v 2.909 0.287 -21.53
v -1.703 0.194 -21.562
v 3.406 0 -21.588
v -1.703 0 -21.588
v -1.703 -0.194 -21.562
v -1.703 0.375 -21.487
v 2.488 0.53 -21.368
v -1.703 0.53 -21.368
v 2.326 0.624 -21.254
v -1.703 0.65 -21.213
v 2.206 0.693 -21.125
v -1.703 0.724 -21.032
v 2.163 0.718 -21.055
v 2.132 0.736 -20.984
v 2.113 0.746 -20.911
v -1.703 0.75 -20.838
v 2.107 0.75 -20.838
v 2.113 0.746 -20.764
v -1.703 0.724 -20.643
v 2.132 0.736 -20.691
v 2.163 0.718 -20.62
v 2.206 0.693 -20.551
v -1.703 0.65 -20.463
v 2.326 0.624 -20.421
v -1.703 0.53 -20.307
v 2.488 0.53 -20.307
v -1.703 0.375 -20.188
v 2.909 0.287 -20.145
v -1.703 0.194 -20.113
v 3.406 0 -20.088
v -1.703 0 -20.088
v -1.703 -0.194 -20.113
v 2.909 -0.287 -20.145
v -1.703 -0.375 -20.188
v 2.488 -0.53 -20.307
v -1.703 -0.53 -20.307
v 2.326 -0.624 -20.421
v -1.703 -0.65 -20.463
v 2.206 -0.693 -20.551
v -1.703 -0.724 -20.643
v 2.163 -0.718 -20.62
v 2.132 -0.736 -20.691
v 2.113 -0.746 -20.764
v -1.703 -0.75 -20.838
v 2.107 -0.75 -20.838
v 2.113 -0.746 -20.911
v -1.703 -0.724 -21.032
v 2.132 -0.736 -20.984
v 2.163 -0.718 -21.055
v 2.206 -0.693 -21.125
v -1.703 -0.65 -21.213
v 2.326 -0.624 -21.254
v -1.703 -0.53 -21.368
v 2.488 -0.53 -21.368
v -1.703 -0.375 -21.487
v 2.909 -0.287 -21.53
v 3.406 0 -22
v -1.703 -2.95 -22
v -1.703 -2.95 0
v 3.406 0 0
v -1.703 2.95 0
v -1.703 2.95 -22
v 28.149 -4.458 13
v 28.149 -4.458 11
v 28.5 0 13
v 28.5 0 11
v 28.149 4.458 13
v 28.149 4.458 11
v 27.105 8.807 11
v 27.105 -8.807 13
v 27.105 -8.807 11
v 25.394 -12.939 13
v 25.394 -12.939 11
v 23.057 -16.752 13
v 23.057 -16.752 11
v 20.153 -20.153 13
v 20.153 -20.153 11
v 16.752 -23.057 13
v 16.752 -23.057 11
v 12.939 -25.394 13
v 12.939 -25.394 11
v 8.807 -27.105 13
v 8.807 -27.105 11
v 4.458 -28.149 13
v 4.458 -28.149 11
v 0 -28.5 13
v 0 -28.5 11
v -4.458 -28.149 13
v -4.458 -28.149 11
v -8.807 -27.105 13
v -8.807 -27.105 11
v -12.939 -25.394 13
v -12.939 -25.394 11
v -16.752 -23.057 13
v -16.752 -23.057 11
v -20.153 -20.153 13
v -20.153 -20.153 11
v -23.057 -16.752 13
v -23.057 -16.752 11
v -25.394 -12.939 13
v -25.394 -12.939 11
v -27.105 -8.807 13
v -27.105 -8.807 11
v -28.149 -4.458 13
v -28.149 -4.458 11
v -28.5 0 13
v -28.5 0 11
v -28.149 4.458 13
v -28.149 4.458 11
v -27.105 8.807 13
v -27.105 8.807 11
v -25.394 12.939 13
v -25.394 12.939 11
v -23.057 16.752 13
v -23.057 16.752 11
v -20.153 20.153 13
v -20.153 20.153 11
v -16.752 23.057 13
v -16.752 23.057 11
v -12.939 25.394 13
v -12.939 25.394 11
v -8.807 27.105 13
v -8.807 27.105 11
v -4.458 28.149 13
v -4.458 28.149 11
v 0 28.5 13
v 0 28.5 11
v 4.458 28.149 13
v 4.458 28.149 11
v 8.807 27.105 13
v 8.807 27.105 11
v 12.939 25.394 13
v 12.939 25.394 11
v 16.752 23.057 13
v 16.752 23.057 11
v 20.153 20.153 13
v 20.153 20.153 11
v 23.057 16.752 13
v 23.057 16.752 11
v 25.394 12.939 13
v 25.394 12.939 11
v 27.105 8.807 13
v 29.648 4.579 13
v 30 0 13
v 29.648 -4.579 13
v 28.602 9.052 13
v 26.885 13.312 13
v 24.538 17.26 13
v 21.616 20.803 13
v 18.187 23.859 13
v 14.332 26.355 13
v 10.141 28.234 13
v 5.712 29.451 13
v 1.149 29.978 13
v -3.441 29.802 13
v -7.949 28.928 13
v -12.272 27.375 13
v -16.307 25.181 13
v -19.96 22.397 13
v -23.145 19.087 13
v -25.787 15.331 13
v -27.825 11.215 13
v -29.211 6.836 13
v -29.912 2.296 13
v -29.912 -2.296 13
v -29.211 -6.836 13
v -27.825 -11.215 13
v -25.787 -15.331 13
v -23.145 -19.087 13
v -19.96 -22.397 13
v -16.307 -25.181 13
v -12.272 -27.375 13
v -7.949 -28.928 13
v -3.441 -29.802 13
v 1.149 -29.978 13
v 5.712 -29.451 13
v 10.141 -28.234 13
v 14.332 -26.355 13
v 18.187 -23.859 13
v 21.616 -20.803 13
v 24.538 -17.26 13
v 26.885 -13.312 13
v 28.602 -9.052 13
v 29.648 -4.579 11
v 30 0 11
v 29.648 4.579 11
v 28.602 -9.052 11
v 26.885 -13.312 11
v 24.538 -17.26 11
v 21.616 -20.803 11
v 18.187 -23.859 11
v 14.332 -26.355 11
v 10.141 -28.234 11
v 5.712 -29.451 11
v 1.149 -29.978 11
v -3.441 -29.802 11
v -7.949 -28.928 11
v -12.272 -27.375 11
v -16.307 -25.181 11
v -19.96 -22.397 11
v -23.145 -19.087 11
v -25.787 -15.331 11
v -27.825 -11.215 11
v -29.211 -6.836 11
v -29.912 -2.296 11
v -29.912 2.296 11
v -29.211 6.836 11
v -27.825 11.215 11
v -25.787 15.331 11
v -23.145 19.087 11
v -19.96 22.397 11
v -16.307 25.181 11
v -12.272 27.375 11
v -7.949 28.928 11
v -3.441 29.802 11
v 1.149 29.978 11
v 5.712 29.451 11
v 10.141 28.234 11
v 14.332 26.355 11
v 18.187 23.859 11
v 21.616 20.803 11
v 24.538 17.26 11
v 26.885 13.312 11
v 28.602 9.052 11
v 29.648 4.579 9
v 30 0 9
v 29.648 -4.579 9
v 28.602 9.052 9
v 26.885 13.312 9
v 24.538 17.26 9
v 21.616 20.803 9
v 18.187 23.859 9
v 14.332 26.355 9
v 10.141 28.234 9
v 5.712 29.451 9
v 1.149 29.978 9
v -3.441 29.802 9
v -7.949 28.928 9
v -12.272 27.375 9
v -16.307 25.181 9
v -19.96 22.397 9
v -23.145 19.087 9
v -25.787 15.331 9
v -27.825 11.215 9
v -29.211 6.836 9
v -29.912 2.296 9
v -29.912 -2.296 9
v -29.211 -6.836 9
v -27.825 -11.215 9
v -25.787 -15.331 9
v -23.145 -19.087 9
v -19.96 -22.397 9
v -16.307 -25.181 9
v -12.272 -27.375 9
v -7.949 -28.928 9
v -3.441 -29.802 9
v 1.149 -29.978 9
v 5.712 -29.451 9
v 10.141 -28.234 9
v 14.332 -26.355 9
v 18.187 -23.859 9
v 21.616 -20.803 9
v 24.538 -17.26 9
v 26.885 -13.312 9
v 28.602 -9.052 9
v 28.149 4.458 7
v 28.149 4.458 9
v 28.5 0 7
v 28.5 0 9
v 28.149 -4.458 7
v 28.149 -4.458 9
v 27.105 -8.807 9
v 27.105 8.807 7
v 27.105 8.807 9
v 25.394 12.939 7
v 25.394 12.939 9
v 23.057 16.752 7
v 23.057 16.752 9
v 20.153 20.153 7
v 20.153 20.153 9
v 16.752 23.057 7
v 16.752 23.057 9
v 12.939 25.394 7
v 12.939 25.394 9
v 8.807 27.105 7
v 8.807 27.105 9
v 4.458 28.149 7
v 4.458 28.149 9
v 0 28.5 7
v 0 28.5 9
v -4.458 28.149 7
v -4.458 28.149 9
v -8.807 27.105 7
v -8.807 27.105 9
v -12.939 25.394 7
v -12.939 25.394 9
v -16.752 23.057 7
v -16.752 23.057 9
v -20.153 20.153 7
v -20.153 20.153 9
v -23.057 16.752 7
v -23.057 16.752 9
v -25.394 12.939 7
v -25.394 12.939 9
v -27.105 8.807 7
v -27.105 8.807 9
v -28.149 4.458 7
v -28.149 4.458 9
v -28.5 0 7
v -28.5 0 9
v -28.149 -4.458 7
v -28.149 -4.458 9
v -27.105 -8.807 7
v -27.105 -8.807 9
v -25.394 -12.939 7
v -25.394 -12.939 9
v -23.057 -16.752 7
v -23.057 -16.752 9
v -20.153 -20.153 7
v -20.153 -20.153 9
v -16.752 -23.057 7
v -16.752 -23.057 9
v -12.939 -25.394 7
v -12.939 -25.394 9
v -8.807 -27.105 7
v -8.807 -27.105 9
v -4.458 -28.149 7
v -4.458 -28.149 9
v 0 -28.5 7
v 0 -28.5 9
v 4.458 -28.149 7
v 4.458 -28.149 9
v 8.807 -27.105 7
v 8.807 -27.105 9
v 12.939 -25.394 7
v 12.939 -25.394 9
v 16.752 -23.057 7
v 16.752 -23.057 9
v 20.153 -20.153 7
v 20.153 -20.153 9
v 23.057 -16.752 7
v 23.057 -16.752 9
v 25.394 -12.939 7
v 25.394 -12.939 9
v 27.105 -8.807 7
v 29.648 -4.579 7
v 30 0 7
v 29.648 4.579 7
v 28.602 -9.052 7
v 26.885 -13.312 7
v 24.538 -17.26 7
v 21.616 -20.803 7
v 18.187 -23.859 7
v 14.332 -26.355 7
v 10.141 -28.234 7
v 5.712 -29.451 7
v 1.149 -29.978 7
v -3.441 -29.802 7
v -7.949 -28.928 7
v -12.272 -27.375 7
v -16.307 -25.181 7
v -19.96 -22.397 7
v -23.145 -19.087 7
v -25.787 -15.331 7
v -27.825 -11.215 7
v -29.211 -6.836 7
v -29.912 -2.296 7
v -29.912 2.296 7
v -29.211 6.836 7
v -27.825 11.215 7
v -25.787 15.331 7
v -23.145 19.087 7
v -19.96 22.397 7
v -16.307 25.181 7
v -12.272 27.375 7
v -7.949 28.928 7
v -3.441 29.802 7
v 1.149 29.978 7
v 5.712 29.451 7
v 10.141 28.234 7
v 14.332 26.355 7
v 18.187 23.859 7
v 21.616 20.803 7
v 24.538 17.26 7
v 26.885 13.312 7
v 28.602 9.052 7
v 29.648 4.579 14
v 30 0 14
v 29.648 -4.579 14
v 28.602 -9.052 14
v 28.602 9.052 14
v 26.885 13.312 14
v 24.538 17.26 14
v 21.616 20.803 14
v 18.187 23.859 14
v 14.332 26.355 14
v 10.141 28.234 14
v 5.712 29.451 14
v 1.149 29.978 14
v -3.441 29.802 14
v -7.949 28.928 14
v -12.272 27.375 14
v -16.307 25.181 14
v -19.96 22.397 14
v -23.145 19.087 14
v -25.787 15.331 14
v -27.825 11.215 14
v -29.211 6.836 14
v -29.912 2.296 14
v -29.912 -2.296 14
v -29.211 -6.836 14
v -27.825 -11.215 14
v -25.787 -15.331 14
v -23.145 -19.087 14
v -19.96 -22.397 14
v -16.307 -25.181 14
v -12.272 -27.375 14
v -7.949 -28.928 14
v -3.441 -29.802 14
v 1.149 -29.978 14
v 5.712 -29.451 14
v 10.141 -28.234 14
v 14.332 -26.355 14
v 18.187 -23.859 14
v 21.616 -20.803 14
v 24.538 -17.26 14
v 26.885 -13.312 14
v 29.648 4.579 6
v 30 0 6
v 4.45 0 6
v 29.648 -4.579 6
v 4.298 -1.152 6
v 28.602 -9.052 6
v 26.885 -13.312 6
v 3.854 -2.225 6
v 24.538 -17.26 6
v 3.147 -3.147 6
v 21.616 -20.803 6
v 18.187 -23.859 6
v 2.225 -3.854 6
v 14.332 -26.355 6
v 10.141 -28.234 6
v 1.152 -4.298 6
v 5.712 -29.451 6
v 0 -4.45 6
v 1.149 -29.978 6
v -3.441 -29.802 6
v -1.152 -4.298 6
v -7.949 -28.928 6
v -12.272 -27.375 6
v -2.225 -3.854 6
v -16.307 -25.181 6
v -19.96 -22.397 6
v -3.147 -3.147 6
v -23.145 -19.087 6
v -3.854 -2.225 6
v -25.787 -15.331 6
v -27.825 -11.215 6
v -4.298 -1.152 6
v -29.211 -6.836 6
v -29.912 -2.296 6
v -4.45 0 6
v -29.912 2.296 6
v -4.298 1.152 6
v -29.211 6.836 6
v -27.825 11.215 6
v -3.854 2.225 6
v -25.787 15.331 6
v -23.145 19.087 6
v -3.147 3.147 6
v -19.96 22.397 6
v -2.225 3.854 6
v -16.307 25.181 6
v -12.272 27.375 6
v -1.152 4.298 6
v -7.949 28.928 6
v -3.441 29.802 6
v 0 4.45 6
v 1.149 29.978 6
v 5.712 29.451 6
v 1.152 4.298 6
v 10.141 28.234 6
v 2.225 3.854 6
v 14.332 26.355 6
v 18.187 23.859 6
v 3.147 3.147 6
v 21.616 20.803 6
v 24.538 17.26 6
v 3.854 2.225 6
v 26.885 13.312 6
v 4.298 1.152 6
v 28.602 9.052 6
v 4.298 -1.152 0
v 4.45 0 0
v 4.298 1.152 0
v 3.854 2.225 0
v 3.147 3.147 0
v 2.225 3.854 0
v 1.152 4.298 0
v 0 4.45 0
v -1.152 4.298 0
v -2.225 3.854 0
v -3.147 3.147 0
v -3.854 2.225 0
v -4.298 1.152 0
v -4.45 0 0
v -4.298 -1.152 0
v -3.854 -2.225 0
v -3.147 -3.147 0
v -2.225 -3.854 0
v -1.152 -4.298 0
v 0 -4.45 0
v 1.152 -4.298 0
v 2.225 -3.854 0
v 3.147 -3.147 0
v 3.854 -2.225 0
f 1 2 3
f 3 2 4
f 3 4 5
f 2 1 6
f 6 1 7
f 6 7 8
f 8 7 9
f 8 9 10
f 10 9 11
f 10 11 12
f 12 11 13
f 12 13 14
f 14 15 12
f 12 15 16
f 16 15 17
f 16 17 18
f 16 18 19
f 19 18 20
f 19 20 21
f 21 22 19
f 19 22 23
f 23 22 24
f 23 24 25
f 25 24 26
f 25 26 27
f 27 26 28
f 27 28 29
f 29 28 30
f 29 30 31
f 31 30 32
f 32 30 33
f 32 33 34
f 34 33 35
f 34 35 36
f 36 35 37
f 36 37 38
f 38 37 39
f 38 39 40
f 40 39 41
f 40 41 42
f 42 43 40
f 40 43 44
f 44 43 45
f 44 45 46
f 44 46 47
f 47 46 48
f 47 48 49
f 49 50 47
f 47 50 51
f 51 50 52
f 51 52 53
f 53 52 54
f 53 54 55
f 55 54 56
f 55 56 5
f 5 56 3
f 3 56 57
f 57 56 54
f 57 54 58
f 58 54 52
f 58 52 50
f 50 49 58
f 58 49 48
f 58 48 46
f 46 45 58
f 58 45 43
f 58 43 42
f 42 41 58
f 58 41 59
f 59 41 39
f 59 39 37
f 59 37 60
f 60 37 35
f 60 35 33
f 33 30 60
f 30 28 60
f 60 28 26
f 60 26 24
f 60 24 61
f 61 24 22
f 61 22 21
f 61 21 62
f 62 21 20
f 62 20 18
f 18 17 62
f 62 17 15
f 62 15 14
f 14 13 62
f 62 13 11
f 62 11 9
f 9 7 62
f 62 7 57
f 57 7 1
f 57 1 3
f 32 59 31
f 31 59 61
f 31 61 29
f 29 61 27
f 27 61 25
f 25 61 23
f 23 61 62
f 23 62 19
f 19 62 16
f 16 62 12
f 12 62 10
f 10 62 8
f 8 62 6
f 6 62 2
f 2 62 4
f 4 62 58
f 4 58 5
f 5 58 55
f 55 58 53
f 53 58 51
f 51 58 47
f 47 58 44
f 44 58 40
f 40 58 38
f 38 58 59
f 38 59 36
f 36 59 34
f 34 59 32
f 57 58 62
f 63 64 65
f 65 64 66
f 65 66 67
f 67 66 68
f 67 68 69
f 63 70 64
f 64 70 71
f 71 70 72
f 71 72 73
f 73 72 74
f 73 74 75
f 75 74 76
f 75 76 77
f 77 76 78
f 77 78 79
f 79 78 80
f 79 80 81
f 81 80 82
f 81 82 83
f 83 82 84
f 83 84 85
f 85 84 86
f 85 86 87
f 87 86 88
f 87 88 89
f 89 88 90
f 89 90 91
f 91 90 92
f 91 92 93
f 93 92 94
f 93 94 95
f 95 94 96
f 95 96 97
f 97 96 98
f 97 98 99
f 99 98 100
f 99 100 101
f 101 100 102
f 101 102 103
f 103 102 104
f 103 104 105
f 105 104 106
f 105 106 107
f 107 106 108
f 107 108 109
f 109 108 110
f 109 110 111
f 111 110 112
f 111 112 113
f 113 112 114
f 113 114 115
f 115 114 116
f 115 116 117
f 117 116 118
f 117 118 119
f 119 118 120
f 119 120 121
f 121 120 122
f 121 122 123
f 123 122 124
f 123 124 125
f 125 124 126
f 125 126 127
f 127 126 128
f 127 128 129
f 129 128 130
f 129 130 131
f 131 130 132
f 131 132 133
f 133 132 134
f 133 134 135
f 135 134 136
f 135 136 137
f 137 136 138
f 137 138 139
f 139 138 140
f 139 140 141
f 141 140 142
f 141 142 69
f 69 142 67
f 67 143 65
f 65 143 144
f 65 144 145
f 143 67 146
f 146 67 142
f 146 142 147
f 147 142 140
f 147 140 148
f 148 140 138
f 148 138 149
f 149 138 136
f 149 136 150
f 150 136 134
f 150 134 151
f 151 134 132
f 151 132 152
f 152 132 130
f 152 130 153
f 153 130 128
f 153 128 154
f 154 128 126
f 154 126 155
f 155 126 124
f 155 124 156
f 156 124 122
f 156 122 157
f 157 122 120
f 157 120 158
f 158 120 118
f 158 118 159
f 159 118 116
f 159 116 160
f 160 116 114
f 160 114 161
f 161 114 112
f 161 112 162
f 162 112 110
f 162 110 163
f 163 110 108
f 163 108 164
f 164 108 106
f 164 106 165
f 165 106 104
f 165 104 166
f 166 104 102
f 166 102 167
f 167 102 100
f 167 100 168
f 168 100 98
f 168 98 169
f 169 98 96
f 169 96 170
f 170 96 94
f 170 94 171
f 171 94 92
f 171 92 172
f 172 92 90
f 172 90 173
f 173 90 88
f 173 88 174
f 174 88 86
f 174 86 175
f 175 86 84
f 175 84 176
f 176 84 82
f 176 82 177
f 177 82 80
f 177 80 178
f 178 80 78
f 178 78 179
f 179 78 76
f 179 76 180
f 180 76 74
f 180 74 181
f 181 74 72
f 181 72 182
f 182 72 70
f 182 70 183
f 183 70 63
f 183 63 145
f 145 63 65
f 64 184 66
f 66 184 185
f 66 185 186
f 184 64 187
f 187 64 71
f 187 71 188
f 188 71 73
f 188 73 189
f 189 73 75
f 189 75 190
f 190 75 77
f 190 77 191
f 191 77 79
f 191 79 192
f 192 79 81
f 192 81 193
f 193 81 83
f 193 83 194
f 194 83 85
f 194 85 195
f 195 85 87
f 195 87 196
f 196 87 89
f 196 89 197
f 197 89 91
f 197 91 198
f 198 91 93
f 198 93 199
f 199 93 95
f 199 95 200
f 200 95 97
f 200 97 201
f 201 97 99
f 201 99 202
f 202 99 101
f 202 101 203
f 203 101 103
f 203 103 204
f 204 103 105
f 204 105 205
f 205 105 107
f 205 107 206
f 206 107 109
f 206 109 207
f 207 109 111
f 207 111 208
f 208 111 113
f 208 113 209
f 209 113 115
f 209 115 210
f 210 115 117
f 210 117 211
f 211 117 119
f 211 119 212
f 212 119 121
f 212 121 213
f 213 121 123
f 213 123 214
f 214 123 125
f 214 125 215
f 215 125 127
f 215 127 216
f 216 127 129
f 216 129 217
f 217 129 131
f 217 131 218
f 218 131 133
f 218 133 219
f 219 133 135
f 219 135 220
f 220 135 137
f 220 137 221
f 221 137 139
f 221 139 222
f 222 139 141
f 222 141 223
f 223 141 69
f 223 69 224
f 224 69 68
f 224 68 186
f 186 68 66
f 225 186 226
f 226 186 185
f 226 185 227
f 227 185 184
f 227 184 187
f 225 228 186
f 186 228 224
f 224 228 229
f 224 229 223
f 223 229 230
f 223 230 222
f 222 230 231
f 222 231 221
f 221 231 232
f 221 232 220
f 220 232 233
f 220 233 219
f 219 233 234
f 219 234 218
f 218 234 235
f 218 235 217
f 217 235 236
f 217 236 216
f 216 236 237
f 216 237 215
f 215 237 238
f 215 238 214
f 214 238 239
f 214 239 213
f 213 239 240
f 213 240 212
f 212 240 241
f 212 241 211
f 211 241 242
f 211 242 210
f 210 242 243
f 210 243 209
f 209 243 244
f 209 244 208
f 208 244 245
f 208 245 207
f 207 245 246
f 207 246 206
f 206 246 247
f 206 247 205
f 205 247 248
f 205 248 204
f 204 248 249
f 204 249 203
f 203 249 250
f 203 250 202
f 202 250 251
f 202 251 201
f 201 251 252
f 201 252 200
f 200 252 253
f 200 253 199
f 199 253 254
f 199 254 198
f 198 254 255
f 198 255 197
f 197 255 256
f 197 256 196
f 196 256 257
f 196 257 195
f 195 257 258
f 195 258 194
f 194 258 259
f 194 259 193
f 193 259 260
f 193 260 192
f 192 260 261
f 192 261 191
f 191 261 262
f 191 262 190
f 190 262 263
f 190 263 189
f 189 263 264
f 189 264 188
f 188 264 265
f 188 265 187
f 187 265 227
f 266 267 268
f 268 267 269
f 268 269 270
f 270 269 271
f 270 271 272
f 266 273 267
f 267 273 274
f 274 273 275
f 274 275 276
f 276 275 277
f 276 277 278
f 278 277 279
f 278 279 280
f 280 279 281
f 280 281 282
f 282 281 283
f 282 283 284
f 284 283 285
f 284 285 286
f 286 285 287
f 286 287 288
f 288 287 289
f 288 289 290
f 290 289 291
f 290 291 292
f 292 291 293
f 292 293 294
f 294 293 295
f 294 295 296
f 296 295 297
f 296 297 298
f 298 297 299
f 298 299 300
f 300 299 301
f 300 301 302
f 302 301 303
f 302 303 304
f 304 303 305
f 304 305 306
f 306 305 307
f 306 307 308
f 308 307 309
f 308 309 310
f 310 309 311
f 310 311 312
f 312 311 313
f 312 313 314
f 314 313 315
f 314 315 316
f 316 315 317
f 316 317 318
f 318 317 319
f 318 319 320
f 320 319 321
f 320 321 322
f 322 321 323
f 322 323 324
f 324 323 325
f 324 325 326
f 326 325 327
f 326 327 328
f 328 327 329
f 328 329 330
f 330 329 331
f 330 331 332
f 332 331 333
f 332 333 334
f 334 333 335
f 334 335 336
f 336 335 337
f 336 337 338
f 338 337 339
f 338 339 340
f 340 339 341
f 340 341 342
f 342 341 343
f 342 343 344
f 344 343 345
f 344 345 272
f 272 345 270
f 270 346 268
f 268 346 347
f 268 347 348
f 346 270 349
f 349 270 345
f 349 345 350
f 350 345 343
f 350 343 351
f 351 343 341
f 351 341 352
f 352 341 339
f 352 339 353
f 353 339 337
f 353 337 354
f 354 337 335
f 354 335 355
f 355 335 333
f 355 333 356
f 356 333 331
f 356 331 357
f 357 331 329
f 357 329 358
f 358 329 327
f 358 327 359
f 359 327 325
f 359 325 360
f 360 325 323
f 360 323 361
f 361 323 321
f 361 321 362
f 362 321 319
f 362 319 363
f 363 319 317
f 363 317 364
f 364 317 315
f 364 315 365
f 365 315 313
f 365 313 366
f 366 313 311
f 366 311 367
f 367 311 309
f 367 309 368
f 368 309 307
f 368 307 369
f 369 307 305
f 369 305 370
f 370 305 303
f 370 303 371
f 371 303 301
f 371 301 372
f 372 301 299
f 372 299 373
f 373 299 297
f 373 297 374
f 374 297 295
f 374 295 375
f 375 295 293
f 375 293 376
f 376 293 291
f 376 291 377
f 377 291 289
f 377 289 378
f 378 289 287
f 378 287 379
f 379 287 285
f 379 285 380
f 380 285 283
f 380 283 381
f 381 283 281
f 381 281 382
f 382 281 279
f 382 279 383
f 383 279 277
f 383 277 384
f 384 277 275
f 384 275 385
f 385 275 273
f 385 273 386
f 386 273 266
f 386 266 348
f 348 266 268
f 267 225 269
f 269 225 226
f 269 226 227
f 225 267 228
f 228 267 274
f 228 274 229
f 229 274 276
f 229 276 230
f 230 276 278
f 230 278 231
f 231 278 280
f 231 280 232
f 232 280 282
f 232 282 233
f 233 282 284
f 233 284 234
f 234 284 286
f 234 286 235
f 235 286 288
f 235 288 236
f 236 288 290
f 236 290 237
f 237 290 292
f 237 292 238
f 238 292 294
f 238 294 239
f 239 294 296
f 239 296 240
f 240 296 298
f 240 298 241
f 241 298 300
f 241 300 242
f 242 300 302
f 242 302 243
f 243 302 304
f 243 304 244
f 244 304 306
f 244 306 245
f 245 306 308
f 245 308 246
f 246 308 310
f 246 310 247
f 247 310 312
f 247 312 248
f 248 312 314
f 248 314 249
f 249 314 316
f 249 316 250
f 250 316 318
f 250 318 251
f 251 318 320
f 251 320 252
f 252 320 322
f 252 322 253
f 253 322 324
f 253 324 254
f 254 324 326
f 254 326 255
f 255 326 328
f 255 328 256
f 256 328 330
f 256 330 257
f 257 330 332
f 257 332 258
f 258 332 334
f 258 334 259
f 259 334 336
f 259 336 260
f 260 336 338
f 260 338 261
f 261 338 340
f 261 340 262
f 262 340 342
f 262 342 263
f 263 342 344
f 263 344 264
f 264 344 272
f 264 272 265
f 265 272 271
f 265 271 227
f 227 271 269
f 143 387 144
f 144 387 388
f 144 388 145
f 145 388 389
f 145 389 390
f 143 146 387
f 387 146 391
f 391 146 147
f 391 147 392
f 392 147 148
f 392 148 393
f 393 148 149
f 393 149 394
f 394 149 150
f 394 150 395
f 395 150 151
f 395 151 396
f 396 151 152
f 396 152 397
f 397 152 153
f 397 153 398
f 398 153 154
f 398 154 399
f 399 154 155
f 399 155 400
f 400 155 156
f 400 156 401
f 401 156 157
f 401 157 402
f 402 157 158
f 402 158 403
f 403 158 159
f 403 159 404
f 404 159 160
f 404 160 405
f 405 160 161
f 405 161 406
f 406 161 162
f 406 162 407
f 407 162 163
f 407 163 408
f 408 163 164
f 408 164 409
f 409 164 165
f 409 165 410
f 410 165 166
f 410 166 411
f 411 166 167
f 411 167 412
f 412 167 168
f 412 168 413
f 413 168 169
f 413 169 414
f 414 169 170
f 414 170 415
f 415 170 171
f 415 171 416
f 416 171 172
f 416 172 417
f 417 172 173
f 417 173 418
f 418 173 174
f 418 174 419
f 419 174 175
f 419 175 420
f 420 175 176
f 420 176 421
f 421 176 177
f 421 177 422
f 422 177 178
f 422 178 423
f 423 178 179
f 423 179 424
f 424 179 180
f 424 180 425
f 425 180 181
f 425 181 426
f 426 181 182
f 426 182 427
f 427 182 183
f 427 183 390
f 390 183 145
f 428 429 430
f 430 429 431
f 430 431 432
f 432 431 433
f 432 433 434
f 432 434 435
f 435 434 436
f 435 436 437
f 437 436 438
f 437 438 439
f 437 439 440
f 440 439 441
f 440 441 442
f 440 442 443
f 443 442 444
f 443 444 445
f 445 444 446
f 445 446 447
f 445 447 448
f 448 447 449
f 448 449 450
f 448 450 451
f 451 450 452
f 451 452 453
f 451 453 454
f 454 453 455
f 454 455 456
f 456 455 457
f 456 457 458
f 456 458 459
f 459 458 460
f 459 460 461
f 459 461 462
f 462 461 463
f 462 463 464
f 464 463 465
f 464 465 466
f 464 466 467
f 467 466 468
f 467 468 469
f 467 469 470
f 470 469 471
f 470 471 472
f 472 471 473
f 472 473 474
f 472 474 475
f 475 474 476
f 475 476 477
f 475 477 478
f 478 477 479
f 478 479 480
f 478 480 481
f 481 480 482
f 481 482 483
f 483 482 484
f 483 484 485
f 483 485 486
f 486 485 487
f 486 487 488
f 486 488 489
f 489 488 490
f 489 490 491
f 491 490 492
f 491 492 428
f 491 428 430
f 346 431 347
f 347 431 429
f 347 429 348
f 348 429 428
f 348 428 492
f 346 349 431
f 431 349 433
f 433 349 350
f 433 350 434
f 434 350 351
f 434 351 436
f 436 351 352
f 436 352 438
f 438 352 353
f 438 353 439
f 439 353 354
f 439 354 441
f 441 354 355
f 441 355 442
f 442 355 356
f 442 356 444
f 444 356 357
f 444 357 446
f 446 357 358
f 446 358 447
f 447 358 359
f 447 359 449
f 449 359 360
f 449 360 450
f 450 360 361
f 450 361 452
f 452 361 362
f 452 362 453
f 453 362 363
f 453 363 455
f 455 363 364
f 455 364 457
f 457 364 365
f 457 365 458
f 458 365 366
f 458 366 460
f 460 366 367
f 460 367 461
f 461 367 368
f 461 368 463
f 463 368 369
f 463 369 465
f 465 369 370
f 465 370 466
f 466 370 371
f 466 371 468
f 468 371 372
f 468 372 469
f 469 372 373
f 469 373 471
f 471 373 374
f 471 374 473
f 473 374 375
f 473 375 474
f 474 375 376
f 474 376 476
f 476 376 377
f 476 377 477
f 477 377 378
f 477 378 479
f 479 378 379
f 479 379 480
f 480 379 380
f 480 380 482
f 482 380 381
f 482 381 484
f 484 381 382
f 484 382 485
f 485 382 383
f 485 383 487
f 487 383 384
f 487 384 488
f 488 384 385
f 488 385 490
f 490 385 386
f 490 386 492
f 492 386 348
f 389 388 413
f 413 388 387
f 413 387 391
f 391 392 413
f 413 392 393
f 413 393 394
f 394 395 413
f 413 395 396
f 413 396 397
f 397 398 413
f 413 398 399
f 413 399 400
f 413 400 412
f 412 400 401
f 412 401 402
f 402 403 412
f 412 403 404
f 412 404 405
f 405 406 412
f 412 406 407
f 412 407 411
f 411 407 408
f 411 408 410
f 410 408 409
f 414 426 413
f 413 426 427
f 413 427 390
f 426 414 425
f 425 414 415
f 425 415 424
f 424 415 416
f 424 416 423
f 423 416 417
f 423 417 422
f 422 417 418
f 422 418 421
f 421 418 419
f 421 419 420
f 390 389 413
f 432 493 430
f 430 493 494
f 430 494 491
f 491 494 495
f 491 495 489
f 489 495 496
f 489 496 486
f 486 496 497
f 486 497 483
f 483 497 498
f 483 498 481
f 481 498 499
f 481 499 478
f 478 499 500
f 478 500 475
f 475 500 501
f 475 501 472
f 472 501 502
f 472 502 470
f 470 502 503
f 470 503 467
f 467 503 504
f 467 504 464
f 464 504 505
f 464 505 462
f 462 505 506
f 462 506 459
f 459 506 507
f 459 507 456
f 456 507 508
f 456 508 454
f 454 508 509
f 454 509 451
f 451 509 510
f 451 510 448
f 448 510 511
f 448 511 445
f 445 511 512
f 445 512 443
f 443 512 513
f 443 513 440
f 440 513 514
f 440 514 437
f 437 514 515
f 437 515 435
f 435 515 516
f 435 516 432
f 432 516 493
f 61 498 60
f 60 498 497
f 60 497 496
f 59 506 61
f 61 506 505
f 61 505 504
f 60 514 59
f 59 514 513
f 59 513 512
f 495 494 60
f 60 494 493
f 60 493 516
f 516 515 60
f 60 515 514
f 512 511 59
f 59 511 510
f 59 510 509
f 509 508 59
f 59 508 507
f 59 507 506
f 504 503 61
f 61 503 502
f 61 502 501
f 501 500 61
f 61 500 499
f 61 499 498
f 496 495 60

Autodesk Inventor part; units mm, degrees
ref_plane "YZ Plane" through (0, 0, 0) normal (1, 0, 0) x (0, 1, 0)
ref_plane "XZ Plane" through (0, 0, 0) normal (0, 1, 0) x (-1, 0, 0)
ref_plane "XY Plane" through (0, 0, 0) normal (0, 0, 1) x (1, 0, 0)
sketch "Sketch3" plane through (0, 0, 0) normal (0, 0, 1) x (1, 0, 0)
  circle A0 centre (0, 0) radius 4.45
  dimension "d11" = 8.9
extrude "Extrusion3" add sketch "Sketch3" along normal blind 6
sketch "Sketch4" plane through (0, 0, 6) normal (0, 0, 1) x (1, 0, 0)
  circle A0 centre (0, 0) radius 30
  dimension "d14" = 60
extrude "Extrusion4" add sketch "Sketch4" along normal blind 8
ref_plane "Work Plane2" through (0, 0, 8) normal (0, 0, 1) x (1, 0, 0)
ref_plane "Work Plane1" through (0, 0, 10) normal (0, 0, 1) x (1, 0, 0)
sketch "Sketch5" plane through (0, 0, 8) normal (0, 0, 1) x (1, 0, 0)
  circle A0 centre (0, 0) radius 28.5
  circle A1 centre (0, 0) radius 30
  dimension "d17" = 57
  dimension "d18" = 60
extrude "Extrusion5" cut sketch "Sketch5" along normal mid plane 2
mirror "Mirror1" about plane through (0, 0, 10) normal (0, 0, 1) of "Extrusion5"
sketch "Sketch7" plane through (0, 0, 0) normal (0, 0, -1) x (-1, 0, 0)
  line L0 (-3.4063, 0) -> (1.7033, -2.95)
  line L1 (1.7033, -2.95) -> (1.7033, 2.95)
  line L2 (-3.4063, 0) -> (1.7033, 2.95)
  dimension "d29" = 5.9
  dimension "d30" = 5.9
  dimension "d34" = 5.9
extrude "Extrusion7" add sketch "Sketch7" along normal blind 22
sketch "Sketch8" plane through (-1.7033, -2.95, 0) normal (-1, 0, 0) x (0, 0, 1)
  line L0 (0, 2.95) -> (-22, 2.95) projected
  circle A0 centre (-20.8375, 2.95) radius 0.75
  dimension "d37" = 1.5
extrude "Extrusion8" cut sketch "Sketch8" against normal blind 12
ref_plane "Work Plane3" through (0, 0, 10) normal (0, 0, 1) x (1, 0, 0)
ref_plane "Work Plane4" through (0, 0, 12) normal (0, 0, 1) x (1, 0, 0)
equation "\"d29\" = d34"
equation "\"d30\" = d34"
properties part number "PulleyAdapterLong" material "ABS Plastic"
